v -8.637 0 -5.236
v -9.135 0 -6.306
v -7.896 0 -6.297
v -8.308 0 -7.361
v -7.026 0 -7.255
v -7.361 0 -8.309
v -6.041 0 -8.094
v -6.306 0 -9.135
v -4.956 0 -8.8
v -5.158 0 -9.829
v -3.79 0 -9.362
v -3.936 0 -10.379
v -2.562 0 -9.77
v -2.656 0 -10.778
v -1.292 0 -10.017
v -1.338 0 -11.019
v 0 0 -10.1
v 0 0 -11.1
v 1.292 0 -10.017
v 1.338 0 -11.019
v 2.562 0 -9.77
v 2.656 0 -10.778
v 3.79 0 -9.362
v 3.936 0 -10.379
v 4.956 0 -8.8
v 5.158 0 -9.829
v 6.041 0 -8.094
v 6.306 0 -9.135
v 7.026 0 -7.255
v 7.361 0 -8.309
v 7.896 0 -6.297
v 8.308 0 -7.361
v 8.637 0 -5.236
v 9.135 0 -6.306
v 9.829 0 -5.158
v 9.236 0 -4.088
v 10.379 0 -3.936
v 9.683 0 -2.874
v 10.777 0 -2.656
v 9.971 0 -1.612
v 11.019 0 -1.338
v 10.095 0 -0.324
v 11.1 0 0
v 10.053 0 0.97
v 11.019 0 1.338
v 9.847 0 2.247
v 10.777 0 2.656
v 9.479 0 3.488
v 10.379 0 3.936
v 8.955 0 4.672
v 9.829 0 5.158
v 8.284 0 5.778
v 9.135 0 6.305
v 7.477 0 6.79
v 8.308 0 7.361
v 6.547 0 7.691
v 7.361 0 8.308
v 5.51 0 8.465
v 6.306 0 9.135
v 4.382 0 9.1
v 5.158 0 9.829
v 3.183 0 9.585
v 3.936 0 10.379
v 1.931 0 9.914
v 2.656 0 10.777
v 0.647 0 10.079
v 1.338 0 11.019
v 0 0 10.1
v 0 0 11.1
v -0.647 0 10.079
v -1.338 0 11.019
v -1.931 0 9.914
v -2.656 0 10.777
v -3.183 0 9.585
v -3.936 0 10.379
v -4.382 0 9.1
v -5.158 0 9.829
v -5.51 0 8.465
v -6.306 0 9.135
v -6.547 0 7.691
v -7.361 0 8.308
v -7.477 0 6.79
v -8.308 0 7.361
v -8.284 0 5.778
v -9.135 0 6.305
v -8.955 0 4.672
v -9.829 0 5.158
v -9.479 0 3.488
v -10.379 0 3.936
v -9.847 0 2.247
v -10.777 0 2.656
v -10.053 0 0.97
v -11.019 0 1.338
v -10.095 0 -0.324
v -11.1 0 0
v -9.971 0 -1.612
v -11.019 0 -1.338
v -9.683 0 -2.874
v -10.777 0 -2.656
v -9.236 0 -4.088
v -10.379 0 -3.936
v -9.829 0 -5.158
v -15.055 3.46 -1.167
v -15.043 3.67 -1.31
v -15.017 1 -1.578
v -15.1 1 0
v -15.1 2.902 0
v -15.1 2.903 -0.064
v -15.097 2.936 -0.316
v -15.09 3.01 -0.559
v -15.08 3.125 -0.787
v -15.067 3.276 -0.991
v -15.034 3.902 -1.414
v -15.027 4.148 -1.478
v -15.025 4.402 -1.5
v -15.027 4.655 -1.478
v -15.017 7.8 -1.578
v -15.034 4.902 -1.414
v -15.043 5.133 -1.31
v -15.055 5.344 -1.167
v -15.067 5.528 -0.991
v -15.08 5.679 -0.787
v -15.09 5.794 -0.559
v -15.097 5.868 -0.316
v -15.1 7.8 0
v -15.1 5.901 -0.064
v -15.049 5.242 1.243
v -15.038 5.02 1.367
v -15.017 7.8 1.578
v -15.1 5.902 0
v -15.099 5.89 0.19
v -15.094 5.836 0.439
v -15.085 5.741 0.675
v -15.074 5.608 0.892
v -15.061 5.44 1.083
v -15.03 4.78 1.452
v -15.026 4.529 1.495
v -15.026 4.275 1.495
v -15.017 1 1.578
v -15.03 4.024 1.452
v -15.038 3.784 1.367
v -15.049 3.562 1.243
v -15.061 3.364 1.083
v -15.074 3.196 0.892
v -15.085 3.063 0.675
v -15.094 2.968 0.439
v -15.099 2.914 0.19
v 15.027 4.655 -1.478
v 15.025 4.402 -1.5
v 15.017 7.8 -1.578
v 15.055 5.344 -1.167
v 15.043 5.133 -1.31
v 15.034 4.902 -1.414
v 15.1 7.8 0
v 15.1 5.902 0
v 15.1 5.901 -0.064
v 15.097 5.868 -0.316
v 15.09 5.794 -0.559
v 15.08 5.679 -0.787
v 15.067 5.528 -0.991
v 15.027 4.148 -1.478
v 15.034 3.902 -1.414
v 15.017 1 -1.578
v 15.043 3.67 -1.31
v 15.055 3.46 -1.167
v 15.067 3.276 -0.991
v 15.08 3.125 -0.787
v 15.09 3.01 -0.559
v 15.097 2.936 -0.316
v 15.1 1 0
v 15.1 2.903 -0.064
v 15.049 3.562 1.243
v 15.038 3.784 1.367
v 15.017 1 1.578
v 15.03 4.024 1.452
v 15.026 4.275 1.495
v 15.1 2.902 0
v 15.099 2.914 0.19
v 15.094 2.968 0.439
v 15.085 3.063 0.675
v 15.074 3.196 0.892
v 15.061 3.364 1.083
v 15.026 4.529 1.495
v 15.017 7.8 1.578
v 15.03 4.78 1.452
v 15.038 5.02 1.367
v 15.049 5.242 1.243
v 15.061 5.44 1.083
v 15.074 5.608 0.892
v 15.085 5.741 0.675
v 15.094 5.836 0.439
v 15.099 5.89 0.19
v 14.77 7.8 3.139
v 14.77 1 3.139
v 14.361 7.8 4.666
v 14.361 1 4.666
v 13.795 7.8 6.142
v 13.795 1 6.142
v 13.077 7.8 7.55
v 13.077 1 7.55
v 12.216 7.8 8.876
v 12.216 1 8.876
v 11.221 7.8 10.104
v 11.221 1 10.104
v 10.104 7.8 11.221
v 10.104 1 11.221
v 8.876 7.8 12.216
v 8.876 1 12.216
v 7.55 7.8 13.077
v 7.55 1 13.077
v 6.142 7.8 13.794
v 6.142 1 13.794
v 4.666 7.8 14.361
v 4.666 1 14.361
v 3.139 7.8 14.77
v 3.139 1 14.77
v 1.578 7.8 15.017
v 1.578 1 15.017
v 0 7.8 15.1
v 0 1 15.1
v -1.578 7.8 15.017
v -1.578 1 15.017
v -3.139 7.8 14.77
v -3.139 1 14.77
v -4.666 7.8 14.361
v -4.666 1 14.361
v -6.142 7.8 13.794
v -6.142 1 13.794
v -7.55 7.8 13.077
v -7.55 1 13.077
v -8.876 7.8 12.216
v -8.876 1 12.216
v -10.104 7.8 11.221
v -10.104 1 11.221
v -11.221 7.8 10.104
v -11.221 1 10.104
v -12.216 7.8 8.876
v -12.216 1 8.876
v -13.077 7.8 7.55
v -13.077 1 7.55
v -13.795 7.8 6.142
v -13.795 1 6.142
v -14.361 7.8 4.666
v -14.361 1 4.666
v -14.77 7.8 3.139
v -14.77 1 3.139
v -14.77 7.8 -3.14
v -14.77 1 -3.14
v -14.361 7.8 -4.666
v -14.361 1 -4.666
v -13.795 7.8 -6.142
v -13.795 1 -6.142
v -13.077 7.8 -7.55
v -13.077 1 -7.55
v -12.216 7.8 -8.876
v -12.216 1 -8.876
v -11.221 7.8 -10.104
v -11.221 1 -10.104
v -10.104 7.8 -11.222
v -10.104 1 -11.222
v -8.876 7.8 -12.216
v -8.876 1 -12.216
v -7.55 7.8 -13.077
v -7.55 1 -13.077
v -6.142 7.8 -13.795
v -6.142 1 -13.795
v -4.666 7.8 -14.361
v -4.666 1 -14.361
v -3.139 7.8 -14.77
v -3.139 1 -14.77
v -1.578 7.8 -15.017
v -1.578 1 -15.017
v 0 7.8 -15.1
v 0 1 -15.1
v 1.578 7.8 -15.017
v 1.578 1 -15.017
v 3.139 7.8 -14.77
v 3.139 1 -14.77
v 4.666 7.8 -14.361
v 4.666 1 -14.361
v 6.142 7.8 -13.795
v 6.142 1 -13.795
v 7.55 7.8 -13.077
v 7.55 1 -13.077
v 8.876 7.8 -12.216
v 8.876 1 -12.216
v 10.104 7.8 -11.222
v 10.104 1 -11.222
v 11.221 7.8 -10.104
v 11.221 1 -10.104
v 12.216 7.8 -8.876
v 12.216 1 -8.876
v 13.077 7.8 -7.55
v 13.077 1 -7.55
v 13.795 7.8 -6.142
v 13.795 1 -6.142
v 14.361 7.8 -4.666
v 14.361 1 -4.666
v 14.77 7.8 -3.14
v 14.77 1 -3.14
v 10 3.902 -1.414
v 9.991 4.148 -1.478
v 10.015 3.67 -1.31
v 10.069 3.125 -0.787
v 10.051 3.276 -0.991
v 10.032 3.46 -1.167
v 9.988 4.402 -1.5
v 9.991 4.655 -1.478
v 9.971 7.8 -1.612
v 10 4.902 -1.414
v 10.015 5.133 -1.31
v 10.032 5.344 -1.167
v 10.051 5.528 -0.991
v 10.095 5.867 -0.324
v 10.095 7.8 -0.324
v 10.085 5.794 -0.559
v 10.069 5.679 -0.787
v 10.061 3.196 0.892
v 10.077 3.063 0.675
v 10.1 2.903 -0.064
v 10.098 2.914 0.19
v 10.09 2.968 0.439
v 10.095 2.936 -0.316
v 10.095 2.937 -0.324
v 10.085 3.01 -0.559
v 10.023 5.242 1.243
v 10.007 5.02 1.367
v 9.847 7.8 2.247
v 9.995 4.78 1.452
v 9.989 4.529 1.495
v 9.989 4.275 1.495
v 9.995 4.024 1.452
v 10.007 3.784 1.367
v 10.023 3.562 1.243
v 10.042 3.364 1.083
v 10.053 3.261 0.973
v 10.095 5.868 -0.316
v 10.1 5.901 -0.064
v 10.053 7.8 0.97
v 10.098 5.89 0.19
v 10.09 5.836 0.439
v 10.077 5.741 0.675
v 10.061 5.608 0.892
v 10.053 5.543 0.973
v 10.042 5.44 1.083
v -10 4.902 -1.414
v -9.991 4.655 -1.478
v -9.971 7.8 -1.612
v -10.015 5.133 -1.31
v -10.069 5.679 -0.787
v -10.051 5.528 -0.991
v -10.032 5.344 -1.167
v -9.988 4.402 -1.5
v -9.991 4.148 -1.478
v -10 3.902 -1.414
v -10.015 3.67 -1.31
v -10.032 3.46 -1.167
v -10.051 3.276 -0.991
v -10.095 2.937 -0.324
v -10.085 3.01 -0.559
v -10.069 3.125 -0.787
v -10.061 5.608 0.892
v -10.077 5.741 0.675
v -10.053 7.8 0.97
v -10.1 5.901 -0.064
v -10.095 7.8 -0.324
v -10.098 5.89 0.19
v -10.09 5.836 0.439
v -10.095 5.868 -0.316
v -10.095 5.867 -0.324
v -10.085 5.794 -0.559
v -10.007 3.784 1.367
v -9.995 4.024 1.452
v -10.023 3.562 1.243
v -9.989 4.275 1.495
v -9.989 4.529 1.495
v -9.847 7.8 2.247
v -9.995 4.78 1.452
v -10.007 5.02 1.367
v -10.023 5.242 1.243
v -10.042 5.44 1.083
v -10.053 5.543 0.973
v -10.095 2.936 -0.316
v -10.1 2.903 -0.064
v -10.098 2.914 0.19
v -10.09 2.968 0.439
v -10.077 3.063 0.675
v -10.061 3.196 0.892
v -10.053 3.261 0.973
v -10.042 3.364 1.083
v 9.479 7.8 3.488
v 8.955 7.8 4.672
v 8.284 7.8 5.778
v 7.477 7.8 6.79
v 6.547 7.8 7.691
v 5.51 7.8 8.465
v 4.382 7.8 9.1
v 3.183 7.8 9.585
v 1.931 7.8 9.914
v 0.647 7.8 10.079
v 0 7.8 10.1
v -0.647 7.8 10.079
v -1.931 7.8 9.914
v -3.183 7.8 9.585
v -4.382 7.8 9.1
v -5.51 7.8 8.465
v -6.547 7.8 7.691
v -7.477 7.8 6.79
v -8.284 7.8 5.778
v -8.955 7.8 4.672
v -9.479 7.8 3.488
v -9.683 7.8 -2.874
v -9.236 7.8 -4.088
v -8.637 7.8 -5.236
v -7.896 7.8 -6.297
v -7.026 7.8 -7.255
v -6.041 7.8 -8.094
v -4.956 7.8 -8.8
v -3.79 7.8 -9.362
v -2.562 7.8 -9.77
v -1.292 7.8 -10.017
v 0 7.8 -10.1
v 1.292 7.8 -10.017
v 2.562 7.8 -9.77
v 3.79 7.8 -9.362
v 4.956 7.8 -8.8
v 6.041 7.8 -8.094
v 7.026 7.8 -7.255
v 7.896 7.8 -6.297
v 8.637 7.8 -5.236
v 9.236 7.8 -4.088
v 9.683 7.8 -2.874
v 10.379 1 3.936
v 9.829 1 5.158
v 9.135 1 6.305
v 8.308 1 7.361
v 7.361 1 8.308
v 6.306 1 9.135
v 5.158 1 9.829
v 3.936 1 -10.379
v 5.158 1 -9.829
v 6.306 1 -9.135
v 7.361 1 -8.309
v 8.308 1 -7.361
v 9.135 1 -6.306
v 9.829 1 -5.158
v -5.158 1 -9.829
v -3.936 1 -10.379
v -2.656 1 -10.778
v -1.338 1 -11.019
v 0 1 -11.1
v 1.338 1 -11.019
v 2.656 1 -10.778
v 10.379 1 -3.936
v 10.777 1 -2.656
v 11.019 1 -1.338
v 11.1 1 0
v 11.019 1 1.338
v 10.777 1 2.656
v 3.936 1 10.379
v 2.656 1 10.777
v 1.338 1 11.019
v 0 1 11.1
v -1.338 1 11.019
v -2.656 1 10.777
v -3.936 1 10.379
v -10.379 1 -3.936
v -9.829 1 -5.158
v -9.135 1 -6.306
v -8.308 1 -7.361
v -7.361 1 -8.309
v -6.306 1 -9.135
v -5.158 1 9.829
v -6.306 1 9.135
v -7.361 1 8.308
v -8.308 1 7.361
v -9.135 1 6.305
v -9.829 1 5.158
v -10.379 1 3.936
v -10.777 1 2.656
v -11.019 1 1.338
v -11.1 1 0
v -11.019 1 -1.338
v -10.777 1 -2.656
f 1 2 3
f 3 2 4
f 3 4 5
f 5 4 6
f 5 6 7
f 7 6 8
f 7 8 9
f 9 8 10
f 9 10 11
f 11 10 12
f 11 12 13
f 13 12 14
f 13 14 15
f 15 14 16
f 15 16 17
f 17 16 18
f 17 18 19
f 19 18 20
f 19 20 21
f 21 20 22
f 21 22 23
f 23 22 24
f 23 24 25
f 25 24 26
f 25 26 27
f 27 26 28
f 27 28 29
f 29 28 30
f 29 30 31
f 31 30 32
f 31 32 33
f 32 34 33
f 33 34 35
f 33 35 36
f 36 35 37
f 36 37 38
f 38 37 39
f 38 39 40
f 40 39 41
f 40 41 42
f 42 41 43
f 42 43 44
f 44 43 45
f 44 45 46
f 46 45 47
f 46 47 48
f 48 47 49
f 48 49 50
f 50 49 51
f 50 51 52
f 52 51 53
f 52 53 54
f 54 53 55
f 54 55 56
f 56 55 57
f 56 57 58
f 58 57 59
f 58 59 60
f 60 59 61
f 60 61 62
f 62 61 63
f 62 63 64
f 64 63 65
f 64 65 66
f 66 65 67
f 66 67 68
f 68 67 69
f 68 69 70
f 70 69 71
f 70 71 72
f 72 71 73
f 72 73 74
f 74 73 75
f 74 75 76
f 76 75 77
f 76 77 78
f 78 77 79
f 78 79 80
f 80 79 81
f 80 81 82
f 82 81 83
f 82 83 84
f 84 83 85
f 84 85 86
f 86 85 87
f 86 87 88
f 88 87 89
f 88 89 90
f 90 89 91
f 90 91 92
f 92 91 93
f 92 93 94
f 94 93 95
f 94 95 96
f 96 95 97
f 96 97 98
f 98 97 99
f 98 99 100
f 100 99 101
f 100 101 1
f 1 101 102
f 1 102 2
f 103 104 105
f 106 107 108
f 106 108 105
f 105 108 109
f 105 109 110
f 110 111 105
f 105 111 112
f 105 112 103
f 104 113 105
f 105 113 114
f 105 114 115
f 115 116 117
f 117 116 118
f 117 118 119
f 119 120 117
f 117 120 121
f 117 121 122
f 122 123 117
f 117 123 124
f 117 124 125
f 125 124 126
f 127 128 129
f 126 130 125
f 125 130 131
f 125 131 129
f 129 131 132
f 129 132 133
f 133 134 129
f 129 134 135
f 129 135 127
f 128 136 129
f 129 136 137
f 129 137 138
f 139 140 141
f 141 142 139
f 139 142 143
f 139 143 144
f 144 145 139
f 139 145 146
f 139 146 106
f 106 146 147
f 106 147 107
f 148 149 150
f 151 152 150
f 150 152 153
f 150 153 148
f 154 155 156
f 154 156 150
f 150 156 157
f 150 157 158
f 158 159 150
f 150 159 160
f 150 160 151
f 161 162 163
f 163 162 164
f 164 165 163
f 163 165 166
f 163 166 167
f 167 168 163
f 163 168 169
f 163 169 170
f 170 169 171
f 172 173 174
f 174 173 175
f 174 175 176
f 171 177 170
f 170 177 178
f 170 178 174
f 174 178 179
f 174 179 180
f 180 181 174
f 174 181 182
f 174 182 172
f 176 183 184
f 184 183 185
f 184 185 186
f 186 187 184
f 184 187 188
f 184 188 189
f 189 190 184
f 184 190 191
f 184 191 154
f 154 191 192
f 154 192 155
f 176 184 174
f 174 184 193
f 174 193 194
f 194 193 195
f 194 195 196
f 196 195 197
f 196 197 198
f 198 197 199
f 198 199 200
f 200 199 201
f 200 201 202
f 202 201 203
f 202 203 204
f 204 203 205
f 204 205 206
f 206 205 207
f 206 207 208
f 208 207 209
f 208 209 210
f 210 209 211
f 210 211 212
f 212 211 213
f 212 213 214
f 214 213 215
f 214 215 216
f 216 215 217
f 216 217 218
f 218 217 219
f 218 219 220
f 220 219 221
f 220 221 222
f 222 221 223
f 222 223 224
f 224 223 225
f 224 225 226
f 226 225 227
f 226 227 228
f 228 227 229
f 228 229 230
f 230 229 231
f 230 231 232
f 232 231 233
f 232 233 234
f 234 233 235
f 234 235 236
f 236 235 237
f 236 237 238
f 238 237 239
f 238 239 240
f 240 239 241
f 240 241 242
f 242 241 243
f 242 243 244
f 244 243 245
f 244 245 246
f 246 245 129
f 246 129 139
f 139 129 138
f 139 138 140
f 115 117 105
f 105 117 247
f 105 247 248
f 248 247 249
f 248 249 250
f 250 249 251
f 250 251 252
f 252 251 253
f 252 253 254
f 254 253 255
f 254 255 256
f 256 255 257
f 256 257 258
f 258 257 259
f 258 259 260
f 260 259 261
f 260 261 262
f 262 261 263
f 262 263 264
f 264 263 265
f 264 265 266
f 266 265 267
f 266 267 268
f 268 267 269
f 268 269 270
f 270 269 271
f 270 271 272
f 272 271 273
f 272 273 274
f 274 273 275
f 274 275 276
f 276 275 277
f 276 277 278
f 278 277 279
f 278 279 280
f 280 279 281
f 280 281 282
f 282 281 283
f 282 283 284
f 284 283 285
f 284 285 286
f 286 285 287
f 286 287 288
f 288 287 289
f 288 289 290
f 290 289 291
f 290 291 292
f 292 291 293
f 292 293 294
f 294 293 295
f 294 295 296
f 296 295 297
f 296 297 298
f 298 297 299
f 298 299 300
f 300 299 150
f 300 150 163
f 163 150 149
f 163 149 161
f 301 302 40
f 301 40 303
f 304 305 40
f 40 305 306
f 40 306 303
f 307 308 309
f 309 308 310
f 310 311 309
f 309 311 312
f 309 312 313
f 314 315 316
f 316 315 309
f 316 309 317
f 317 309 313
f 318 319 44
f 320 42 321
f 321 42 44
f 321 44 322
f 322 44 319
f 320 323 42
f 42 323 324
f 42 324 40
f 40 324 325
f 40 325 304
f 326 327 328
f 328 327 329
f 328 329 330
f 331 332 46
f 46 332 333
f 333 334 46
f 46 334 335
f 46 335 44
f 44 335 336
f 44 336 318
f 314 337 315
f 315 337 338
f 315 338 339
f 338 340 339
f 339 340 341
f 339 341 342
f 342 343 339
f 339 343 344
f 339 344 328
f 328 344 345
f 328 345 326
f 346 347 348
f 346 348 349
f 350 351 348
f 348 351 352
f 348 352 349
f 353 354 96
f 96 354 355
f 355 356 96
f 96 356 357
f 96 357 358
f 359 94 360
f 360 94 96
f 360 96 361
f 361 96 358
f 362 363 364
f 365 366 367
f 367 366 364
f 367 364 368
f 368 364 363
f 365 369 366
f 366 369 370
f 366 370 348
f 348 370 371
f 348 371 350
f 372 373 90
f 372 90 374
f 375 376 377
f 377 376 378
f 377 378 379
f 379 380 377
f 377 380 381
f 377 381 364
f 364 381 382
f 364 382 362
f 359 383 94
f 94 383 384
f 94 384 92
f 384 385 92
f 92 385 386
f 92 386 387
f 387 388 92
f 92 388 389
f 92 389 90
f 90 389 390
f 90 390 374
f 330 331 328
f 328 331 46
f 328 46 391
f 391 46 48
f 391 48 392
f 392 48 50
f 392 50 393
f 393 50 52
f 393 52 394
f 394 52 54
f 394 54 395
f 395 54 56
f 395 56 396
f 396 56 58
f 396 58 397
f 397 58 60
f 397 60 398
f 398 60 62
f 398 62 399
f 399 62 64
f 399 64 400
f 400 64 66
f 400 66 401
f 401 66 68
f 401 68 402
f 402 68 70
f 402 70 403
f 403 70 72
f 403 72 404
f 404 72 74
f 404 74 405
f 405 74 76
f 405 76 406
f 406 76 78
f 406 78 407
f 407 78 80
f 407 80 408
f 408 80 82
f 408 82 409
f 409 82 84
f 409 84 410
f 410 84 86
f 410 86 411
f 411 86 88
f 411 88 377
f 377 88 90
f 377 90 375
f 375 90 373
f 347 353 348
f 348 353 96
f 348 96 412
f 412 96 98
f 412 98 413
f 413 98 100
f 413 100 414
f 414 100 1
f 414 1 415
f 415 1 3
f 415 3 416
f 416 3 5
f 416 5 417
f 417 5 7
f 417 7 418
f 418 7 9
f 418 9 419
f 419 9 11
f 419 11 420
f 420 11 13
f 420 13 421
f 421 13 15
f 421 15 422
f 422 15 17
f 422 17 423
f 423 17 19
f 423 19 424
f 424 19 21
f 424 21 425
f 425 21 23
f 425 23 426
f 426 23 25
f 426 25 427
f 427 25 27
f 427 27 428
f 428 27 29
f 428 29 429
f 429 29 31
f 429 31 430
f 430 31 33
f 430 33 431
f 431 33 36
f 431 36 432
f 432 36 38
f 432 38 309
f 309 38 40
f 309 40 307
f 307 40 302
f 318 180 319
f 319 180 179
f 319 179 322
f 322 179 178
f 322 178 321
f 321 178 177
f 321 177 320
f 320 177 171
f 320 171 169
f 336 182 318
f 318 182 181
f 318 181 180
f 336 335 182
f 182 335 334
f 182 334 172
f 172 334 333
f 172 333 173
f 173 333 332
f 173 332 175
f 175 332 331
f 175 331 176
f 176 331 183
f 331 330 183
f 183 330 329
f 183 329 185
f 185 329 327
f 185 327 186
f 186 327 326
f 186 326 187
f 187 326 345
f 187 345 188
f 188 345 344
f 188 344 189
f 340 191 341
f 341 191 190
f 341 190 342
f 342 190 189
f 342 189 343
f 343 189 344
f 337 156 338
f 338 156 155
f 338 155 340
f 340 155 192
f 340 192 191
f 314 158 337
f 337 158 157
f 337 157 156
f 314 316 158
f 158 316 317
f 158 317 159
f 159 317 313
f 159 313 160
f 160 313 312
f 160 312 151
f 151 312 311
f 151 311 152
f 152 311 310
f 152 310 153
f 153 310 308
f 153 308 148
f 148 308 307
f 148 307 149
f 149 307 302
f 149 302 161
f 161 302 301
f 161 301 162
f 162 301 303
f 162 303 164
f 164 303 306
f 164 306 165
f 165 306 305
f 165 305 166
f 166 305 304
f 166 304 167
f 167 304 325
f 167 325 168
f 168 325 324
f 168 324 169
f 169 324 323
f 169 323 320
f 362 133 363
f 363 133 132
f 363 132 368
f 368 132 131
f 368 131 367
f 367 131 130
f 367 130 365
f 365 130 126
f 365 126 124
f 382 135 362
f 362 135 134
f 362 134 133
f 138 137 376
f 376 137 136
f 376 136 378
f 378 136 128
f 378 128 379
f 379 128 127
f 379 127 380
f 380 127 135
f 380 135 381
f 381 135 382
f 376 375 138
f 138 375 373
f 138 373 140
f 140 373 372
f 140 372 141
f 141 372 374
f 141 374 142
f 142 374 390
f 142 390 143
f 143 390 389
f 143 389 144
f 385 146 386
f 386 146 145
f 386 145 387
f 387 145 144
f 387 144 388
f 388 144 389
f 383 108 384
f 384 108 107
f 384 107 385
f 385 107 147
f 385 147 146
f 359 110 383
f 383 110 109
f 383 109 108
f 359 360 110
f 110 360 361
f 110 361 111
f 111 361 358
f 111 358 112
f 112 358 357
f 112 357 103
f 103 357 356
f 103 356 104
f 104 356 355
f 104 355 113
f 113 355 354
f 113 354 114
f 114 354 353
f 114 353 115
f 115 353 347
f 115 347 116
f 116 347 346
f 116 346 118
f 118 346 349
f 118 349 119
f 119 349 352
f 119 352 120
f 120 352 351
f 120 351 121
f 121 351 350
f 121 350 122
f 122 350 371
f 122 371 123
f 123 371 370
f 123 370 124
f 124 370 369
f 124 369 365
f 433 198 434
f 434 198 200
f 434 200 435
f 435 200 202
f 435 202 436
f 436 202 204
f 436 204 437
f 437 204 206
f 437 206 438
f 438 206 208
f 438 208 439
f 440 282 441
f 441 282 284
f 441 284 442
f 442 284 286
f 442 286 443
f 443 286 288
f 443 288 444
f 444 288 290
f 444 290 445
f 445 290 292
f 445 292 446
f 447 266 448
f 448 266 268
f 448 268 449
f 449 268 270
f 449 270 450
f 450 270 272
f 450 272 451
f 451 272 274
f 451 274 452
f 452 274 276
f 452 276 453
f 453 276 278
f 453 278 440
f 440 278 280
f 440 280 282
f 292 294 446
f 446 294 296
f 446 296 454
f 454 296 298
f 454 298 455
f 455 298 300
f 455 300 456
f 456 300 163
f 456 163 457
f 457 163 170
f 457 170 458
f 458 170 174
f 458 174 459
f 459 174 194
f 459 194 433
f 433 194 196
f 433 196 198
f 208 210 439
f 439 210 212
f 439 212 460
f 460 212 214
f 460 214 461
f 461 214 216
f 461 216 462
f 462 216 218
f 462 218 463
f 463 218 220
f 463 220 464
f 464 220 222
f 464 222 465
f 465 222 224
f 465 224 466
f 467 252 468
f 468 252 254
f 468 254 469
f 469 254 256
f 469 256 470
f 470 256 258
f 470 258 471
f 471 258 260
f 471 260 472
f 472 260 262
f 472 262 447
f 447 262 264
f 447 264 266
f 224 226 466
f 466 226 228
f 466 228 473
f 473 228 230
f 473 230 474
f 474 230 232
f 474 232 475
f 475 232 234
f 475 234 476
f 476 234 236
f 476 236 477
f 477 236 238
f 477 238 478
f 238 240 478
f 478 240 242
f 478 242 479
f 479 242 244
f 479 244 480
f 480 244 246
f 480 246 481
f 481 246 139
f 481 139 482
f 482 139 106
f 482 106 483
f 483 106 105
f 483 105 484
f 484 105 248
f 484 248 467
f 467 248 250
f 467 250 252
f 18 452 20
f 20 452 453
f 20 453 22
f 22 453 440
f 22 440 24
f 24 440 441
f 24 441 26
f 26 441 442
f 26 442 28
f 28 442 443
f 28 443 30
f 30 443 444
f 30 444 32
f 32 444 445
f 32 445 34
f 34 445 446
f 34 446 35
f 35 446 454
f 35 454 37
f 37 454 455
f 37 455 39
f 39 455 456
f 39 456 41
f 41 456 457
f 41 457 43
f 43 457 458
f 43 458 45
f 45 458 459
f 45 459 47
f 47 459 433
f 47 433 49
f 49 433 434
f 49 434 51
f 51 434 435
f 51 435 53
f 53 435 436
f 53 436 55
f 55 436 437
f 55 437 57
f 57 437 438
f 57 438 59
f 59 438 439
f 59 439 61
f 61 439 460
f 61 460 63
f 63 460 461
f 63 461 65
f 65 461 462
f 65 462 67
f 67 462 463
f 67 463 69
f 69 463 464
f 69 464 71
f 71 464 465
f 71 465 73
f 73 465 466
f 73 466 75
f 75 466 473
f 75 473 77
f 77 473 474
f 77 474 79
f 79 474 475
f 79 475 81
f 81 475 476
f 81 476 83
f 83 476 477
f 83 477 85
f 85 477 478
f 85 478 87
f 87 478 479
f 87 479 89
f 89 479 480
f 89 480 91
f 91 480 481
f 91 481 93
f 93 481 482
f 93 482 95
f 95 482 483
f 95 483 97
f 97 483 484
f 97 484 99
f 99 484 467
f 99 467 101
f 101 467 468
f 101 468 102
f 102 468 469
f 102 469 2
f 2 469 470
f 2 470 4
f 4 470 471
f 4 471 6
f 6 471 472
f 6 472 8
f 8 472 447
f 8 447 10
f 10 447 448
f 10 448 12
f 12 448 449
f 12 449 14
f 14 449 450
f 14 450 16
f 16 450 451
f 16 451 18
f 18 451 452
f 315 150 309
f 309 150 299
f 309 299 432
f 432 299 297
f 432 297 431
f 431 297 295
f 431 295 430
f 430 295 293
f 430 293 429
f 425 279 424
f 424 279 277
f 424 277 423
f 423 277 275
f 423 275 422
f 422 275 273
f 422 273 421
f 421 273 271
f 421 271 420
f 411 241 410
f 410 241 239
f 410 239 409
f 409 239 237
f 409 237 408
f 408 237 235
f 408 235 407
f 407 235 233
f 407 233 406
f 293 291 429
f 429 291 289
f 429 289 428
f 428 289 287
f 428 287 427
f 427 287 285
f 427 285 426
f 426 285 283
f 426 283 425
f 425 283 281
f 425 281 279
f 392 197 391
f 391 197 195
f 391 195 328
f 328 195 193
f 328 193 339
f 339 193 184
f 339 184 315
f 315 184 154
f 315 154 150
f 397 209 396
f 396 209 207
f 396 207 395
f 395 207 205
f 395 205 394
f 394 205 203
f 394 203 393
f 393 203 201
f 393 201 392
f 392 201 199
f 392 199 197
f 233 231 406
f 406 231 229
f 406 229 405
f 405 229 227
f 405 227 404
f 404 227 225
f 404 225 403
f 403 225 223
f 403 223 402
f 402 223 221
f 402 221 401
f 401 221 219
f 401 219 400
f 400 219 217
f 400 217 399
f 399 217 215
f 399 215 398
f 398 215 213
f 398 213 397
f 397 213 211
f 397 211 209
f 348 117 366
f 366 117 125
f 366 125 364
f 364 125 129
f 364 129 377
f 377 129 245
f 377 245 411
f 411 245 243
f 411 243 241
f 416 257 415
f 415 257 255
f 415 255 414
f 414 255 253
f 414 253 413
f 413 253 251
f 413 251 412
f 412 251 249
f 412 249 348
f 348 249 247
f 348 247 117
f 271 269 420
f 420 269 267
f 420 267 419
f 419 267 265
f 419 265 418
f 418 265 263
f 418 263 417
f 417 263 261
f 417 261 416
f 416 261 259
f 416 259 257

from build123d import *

# Parameters (mm, degrees)
SKETCH1_R               = 15.1
SKETCH1_R_2             = 10.1
BOSS_EXTRUDE1_DEPTH     = 7
CUT_EXTRUDE3_DEPTH      = 22
CUT_EXTRUDE3_DEPTH_BACK = 24
SKETCH4_R               = 23.353820798
SKETCH4_R_2             = 11.1
CUT_EXTRUDE4_DEPTH      = 1
SKETCH6_R               = 15.1
SKETCH6_R_2             = 10.1
BOSS_EXTRUDE2_DEPTH     = 0.8


with BuildPart() as part:
    # Sketch1 → Boss-Extrude1 (new body)
    with BuildSketch(Plane(origin=(0, 0, 0), x_dir=(1, 0, 0), z_dir=(0, 1, 0))):
        with Locations(Location((0, 0, 0), (0, 0, 270))):
            Circle(SKETCH1_R)
        with Locations(Location((0, 0, 0), (0, 0, 270))):
            Circle(SKETCH1_R_2, mode=Mode.SUBTRACT)
    extrude(amount=BOSS_EXTRUDE1_DEPTH)

    # Sketch2 → Cut-Extrude3 (cut, two sides: drawn at the far end of the back side and taken through both)
    with BuildSketch(Plane(origin=(0, 0, 0), x_dir=(0, 0, -1), z_dir=(1, 0, 0)).offset(-CUT_EXTRUDE3_DEPTH_BACK)):
        with BuildLine():
            Line((0, 5.901951984), (0, 4.401951984))
            Line((0, 4.401951984), (0, 3.5))
            Line((0, 3.5), (0, 2.901951984))
            ThreePointArc((0, 2.901951984), (1.060660172, 3.341291812), (1.5, 4.401951984))
            ThreePointArc((1.5, 4.401951984), (1.060660172, 5.462612156), (0, 5.901951984))
        make_face()
        with BuildLine():
            Line((0, 3.5), (0, 4.401951984))
            Line((0, 4.401951984), (0, 5.901951984))
            ThreePointArc((0, 5.901951984), (-1.5, 4.401951984), (0, 2.901951984))
            Line((0, 2.901951984), (0, 3.5))
        make_face()
    extrude(amount=CUT_EXTRUDE3_DEPTH + CUT_EXTRUDE3_DEPTH_BACK, mode=Mode.SUBTRACT)

    # Sketch4 → Cut-Extrude4 (cut)
    with BuildSketch(Plane.XZ):
        Circle(SKETCH4_R)
        with Locations(Location((0, 0, 0), (0, 0, 270))):
            Circle(SKETCH4_R_2, mode=Mode.SUBTRACT)
    extrude(amount=-CUT_EXTRUDE4_DEPTH, mode=Mode.SUBTRACT)

    # Sketch6 → Boss-Extrude2 (add)
    with BuildSketch(Plane(origin=(0, 7, 0), x_dir=(1, 0, 0), z_dir=(0, 1, 0))):
        with Locations(Location((0, 0, 0), (0, 0, 90))):
            Circle(SKETCH6_R)
        with Locations(Location((0, 0, 0), (0, 0, 270))):
            Circle(SKETCH6_R_2, mode=Mode.SUBTRACT)
    extrude(amount=BOSS_EXTRUDE2_DEPTH)


solid = part.part
